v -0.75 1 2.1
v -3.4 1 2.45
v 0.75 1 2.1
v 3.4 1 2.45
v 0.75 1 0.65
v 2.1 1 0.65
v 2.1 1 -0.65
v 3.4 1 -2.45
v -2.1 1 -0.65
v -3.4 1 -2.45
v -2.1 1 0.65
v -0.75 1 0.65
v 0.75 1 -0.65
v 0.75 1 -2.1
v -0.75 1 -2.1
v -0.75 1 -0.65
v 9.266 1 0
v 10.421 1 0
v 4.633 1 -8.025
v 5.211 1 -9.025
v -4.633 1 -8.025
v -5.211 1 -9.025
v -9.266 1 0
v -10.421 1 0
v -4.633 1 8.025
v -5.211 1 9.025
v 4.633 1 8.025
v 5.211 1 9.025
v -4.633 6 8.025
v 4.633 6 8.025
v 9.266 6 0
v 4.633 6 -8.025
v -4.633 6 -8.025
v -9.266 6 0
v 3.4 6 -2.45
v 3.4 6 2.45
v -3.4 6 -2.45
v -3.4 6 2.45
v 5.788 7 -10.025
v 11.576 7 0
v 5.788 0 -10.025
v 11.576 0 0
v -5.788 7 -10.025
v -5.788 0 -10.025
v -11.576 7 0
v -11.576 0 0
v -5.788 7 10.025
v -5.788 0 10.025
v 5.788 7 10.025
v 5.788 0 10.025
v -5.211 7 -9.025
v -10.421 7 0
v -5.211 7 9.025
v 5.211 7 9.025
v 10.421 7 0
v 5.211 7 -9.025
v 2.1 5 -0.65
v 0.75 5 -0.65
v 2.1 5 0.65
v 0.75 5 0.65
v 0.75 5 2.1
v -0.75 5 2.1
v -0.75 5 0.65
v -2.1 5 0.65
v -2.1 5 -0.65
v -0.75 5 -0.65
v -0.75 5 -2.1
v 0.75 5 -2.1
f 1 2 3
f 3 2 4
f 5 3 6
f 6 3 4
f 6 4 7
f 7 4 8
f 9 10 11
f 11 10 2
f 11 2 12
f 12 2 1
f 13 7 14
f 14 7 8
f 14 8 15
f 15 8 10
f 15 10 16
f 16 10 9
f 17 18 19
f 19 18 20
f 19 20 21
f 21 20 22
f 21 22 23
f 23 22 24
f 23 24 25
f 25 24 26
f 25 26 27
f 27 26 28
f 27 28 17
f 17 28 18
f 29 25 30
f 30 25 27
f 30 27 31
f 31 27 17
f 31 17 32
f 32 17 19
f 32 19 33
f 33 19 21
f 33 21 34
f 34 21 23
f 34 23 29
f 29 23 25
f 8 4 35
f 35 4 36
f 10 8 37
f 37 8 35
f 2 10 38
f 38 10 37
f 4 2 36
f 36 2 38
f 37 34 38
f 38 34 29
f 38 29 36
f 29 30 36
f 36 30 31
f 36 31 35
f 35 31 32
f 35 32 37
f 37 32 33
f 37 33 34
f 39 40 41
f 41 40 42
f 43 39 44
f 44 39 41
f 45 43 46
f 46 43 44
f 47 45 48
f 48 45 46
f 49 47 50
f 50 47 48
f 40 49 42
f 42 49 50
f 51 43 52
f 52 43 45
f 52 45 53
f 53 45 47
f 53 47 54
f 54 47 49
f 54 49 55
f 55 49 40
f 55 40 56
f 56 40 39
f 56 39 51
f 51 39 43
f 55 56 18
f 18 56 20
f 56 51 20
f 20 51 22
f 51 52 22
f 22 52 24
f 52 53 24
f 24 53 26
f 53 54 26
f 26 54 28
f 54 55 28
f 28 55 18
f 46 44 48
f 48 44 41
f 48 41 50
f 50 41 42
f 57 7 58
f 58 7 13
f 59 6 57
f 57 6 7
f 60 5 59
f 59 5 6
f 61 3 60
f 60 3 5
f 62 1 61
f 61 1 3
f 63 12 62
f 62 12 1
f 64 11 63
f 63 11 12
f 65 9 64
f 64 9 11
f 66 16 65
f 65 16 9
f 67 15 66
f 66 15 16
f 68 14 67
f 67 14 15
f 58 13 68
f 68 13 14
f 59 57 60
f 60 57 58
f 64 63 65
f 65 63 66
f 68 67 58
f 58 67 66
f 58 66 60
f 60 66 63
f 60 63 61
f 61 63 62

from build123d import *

# Parameters (mm, degrees)
BOSS_EXTRUDE1_DEPTH = 1
BOSS_EXTRUDE2_DEPTH = 7
SKETCH3_W           = 6.8
SKETCH3_H           = 4.9
BOSS_EXTRUDE3_DEPTH = 5
BOSS_EXTRUDE4_DEPTH = 4


with BuildPart() as part:
    # Sketch1 → Boss-Extrude1 (new body)
    with BuildSketch(Plane(origin=(0, 0, 0), x_dir=(1, 0, 0), z_dir=(0, 1, 0))):
        Polygon((10.421172359, 0), (5.210586179, 9.025), (-5.210586179, 9.025), (-10.421172359, 0), (-5.210586179, -9.025), (5.210586179, -9.025), align=None)
    extrude(amount=BOSS_EXTRUDE1_DEPTH)



with BuildPart() as body_2:
    # Sketch2 → Boss-Extrude2 (new body)
    with BuildSketch(Plane.XZ):
        Polygon((11.575872897, 0), (5.787936449, 10.025), (-5.787936449, 10.025), (-11.575872897, 0), (-5.787936449, -10.025), (5.787936449, -10.025), align=None)
        Polygon((10.421172359, 0), (5.210586179, 9.025), (-5.210586179, 9.025), (-10.421172359, 0), (-5.210586179, -9.025), (5.210586179, -9.025), align=None, mode=Mode.SUBTRACT)
    extrude(amount=-BOSS_EXTRUDE2_DEPTH)


with BuildPart() as part_1:
    add(part.part)

    add(body_2.part)  # Boss-Extrude3 merges body 2
    # Sketch3 → Boss-Extrude3 (add)
    with BuildSketch(Plane(origin=(0, 1, 0), x_dir=(1, 0, 0), z_dir=(0, 1, 0))):
        Polygon((4.63323591, -8.025), (9.26647182, 0), (4.63323591, 8.025), (-4.63323591, 8.025), (-9.26647182, 0), (-4.63323591, -8.025), align=None)
        Rectangle(SKETCH3_W, SKETCH3_H, mode=Mode.SUBTRACT)
    extrude(amount=BOSS_EXTRUDE3_DEPTH)

    # Sketch4 → Boss-Extrude4 (add)
    with BuildSketch(Plane(origin=(0, 1, 0), x_dir=(1, 0, 0), z_dir=(0, 1, 0))):
        Polygon((-0.75, 2.1), (0.75, 2.1), (0.75, 0.65), (2.1, 0.65), (2.1, -0.65), (0.75, -0.65), (0.75, -2.1), (-0.75, -2.1), (-0.75, -0.65), (-2.1, -0.65), (-2.1, 0.65), (-0.75, 0.65), align=None)
    extrude(amount=BOSS_EXTRUDE4_DEPTH)


solid = part_1.part
